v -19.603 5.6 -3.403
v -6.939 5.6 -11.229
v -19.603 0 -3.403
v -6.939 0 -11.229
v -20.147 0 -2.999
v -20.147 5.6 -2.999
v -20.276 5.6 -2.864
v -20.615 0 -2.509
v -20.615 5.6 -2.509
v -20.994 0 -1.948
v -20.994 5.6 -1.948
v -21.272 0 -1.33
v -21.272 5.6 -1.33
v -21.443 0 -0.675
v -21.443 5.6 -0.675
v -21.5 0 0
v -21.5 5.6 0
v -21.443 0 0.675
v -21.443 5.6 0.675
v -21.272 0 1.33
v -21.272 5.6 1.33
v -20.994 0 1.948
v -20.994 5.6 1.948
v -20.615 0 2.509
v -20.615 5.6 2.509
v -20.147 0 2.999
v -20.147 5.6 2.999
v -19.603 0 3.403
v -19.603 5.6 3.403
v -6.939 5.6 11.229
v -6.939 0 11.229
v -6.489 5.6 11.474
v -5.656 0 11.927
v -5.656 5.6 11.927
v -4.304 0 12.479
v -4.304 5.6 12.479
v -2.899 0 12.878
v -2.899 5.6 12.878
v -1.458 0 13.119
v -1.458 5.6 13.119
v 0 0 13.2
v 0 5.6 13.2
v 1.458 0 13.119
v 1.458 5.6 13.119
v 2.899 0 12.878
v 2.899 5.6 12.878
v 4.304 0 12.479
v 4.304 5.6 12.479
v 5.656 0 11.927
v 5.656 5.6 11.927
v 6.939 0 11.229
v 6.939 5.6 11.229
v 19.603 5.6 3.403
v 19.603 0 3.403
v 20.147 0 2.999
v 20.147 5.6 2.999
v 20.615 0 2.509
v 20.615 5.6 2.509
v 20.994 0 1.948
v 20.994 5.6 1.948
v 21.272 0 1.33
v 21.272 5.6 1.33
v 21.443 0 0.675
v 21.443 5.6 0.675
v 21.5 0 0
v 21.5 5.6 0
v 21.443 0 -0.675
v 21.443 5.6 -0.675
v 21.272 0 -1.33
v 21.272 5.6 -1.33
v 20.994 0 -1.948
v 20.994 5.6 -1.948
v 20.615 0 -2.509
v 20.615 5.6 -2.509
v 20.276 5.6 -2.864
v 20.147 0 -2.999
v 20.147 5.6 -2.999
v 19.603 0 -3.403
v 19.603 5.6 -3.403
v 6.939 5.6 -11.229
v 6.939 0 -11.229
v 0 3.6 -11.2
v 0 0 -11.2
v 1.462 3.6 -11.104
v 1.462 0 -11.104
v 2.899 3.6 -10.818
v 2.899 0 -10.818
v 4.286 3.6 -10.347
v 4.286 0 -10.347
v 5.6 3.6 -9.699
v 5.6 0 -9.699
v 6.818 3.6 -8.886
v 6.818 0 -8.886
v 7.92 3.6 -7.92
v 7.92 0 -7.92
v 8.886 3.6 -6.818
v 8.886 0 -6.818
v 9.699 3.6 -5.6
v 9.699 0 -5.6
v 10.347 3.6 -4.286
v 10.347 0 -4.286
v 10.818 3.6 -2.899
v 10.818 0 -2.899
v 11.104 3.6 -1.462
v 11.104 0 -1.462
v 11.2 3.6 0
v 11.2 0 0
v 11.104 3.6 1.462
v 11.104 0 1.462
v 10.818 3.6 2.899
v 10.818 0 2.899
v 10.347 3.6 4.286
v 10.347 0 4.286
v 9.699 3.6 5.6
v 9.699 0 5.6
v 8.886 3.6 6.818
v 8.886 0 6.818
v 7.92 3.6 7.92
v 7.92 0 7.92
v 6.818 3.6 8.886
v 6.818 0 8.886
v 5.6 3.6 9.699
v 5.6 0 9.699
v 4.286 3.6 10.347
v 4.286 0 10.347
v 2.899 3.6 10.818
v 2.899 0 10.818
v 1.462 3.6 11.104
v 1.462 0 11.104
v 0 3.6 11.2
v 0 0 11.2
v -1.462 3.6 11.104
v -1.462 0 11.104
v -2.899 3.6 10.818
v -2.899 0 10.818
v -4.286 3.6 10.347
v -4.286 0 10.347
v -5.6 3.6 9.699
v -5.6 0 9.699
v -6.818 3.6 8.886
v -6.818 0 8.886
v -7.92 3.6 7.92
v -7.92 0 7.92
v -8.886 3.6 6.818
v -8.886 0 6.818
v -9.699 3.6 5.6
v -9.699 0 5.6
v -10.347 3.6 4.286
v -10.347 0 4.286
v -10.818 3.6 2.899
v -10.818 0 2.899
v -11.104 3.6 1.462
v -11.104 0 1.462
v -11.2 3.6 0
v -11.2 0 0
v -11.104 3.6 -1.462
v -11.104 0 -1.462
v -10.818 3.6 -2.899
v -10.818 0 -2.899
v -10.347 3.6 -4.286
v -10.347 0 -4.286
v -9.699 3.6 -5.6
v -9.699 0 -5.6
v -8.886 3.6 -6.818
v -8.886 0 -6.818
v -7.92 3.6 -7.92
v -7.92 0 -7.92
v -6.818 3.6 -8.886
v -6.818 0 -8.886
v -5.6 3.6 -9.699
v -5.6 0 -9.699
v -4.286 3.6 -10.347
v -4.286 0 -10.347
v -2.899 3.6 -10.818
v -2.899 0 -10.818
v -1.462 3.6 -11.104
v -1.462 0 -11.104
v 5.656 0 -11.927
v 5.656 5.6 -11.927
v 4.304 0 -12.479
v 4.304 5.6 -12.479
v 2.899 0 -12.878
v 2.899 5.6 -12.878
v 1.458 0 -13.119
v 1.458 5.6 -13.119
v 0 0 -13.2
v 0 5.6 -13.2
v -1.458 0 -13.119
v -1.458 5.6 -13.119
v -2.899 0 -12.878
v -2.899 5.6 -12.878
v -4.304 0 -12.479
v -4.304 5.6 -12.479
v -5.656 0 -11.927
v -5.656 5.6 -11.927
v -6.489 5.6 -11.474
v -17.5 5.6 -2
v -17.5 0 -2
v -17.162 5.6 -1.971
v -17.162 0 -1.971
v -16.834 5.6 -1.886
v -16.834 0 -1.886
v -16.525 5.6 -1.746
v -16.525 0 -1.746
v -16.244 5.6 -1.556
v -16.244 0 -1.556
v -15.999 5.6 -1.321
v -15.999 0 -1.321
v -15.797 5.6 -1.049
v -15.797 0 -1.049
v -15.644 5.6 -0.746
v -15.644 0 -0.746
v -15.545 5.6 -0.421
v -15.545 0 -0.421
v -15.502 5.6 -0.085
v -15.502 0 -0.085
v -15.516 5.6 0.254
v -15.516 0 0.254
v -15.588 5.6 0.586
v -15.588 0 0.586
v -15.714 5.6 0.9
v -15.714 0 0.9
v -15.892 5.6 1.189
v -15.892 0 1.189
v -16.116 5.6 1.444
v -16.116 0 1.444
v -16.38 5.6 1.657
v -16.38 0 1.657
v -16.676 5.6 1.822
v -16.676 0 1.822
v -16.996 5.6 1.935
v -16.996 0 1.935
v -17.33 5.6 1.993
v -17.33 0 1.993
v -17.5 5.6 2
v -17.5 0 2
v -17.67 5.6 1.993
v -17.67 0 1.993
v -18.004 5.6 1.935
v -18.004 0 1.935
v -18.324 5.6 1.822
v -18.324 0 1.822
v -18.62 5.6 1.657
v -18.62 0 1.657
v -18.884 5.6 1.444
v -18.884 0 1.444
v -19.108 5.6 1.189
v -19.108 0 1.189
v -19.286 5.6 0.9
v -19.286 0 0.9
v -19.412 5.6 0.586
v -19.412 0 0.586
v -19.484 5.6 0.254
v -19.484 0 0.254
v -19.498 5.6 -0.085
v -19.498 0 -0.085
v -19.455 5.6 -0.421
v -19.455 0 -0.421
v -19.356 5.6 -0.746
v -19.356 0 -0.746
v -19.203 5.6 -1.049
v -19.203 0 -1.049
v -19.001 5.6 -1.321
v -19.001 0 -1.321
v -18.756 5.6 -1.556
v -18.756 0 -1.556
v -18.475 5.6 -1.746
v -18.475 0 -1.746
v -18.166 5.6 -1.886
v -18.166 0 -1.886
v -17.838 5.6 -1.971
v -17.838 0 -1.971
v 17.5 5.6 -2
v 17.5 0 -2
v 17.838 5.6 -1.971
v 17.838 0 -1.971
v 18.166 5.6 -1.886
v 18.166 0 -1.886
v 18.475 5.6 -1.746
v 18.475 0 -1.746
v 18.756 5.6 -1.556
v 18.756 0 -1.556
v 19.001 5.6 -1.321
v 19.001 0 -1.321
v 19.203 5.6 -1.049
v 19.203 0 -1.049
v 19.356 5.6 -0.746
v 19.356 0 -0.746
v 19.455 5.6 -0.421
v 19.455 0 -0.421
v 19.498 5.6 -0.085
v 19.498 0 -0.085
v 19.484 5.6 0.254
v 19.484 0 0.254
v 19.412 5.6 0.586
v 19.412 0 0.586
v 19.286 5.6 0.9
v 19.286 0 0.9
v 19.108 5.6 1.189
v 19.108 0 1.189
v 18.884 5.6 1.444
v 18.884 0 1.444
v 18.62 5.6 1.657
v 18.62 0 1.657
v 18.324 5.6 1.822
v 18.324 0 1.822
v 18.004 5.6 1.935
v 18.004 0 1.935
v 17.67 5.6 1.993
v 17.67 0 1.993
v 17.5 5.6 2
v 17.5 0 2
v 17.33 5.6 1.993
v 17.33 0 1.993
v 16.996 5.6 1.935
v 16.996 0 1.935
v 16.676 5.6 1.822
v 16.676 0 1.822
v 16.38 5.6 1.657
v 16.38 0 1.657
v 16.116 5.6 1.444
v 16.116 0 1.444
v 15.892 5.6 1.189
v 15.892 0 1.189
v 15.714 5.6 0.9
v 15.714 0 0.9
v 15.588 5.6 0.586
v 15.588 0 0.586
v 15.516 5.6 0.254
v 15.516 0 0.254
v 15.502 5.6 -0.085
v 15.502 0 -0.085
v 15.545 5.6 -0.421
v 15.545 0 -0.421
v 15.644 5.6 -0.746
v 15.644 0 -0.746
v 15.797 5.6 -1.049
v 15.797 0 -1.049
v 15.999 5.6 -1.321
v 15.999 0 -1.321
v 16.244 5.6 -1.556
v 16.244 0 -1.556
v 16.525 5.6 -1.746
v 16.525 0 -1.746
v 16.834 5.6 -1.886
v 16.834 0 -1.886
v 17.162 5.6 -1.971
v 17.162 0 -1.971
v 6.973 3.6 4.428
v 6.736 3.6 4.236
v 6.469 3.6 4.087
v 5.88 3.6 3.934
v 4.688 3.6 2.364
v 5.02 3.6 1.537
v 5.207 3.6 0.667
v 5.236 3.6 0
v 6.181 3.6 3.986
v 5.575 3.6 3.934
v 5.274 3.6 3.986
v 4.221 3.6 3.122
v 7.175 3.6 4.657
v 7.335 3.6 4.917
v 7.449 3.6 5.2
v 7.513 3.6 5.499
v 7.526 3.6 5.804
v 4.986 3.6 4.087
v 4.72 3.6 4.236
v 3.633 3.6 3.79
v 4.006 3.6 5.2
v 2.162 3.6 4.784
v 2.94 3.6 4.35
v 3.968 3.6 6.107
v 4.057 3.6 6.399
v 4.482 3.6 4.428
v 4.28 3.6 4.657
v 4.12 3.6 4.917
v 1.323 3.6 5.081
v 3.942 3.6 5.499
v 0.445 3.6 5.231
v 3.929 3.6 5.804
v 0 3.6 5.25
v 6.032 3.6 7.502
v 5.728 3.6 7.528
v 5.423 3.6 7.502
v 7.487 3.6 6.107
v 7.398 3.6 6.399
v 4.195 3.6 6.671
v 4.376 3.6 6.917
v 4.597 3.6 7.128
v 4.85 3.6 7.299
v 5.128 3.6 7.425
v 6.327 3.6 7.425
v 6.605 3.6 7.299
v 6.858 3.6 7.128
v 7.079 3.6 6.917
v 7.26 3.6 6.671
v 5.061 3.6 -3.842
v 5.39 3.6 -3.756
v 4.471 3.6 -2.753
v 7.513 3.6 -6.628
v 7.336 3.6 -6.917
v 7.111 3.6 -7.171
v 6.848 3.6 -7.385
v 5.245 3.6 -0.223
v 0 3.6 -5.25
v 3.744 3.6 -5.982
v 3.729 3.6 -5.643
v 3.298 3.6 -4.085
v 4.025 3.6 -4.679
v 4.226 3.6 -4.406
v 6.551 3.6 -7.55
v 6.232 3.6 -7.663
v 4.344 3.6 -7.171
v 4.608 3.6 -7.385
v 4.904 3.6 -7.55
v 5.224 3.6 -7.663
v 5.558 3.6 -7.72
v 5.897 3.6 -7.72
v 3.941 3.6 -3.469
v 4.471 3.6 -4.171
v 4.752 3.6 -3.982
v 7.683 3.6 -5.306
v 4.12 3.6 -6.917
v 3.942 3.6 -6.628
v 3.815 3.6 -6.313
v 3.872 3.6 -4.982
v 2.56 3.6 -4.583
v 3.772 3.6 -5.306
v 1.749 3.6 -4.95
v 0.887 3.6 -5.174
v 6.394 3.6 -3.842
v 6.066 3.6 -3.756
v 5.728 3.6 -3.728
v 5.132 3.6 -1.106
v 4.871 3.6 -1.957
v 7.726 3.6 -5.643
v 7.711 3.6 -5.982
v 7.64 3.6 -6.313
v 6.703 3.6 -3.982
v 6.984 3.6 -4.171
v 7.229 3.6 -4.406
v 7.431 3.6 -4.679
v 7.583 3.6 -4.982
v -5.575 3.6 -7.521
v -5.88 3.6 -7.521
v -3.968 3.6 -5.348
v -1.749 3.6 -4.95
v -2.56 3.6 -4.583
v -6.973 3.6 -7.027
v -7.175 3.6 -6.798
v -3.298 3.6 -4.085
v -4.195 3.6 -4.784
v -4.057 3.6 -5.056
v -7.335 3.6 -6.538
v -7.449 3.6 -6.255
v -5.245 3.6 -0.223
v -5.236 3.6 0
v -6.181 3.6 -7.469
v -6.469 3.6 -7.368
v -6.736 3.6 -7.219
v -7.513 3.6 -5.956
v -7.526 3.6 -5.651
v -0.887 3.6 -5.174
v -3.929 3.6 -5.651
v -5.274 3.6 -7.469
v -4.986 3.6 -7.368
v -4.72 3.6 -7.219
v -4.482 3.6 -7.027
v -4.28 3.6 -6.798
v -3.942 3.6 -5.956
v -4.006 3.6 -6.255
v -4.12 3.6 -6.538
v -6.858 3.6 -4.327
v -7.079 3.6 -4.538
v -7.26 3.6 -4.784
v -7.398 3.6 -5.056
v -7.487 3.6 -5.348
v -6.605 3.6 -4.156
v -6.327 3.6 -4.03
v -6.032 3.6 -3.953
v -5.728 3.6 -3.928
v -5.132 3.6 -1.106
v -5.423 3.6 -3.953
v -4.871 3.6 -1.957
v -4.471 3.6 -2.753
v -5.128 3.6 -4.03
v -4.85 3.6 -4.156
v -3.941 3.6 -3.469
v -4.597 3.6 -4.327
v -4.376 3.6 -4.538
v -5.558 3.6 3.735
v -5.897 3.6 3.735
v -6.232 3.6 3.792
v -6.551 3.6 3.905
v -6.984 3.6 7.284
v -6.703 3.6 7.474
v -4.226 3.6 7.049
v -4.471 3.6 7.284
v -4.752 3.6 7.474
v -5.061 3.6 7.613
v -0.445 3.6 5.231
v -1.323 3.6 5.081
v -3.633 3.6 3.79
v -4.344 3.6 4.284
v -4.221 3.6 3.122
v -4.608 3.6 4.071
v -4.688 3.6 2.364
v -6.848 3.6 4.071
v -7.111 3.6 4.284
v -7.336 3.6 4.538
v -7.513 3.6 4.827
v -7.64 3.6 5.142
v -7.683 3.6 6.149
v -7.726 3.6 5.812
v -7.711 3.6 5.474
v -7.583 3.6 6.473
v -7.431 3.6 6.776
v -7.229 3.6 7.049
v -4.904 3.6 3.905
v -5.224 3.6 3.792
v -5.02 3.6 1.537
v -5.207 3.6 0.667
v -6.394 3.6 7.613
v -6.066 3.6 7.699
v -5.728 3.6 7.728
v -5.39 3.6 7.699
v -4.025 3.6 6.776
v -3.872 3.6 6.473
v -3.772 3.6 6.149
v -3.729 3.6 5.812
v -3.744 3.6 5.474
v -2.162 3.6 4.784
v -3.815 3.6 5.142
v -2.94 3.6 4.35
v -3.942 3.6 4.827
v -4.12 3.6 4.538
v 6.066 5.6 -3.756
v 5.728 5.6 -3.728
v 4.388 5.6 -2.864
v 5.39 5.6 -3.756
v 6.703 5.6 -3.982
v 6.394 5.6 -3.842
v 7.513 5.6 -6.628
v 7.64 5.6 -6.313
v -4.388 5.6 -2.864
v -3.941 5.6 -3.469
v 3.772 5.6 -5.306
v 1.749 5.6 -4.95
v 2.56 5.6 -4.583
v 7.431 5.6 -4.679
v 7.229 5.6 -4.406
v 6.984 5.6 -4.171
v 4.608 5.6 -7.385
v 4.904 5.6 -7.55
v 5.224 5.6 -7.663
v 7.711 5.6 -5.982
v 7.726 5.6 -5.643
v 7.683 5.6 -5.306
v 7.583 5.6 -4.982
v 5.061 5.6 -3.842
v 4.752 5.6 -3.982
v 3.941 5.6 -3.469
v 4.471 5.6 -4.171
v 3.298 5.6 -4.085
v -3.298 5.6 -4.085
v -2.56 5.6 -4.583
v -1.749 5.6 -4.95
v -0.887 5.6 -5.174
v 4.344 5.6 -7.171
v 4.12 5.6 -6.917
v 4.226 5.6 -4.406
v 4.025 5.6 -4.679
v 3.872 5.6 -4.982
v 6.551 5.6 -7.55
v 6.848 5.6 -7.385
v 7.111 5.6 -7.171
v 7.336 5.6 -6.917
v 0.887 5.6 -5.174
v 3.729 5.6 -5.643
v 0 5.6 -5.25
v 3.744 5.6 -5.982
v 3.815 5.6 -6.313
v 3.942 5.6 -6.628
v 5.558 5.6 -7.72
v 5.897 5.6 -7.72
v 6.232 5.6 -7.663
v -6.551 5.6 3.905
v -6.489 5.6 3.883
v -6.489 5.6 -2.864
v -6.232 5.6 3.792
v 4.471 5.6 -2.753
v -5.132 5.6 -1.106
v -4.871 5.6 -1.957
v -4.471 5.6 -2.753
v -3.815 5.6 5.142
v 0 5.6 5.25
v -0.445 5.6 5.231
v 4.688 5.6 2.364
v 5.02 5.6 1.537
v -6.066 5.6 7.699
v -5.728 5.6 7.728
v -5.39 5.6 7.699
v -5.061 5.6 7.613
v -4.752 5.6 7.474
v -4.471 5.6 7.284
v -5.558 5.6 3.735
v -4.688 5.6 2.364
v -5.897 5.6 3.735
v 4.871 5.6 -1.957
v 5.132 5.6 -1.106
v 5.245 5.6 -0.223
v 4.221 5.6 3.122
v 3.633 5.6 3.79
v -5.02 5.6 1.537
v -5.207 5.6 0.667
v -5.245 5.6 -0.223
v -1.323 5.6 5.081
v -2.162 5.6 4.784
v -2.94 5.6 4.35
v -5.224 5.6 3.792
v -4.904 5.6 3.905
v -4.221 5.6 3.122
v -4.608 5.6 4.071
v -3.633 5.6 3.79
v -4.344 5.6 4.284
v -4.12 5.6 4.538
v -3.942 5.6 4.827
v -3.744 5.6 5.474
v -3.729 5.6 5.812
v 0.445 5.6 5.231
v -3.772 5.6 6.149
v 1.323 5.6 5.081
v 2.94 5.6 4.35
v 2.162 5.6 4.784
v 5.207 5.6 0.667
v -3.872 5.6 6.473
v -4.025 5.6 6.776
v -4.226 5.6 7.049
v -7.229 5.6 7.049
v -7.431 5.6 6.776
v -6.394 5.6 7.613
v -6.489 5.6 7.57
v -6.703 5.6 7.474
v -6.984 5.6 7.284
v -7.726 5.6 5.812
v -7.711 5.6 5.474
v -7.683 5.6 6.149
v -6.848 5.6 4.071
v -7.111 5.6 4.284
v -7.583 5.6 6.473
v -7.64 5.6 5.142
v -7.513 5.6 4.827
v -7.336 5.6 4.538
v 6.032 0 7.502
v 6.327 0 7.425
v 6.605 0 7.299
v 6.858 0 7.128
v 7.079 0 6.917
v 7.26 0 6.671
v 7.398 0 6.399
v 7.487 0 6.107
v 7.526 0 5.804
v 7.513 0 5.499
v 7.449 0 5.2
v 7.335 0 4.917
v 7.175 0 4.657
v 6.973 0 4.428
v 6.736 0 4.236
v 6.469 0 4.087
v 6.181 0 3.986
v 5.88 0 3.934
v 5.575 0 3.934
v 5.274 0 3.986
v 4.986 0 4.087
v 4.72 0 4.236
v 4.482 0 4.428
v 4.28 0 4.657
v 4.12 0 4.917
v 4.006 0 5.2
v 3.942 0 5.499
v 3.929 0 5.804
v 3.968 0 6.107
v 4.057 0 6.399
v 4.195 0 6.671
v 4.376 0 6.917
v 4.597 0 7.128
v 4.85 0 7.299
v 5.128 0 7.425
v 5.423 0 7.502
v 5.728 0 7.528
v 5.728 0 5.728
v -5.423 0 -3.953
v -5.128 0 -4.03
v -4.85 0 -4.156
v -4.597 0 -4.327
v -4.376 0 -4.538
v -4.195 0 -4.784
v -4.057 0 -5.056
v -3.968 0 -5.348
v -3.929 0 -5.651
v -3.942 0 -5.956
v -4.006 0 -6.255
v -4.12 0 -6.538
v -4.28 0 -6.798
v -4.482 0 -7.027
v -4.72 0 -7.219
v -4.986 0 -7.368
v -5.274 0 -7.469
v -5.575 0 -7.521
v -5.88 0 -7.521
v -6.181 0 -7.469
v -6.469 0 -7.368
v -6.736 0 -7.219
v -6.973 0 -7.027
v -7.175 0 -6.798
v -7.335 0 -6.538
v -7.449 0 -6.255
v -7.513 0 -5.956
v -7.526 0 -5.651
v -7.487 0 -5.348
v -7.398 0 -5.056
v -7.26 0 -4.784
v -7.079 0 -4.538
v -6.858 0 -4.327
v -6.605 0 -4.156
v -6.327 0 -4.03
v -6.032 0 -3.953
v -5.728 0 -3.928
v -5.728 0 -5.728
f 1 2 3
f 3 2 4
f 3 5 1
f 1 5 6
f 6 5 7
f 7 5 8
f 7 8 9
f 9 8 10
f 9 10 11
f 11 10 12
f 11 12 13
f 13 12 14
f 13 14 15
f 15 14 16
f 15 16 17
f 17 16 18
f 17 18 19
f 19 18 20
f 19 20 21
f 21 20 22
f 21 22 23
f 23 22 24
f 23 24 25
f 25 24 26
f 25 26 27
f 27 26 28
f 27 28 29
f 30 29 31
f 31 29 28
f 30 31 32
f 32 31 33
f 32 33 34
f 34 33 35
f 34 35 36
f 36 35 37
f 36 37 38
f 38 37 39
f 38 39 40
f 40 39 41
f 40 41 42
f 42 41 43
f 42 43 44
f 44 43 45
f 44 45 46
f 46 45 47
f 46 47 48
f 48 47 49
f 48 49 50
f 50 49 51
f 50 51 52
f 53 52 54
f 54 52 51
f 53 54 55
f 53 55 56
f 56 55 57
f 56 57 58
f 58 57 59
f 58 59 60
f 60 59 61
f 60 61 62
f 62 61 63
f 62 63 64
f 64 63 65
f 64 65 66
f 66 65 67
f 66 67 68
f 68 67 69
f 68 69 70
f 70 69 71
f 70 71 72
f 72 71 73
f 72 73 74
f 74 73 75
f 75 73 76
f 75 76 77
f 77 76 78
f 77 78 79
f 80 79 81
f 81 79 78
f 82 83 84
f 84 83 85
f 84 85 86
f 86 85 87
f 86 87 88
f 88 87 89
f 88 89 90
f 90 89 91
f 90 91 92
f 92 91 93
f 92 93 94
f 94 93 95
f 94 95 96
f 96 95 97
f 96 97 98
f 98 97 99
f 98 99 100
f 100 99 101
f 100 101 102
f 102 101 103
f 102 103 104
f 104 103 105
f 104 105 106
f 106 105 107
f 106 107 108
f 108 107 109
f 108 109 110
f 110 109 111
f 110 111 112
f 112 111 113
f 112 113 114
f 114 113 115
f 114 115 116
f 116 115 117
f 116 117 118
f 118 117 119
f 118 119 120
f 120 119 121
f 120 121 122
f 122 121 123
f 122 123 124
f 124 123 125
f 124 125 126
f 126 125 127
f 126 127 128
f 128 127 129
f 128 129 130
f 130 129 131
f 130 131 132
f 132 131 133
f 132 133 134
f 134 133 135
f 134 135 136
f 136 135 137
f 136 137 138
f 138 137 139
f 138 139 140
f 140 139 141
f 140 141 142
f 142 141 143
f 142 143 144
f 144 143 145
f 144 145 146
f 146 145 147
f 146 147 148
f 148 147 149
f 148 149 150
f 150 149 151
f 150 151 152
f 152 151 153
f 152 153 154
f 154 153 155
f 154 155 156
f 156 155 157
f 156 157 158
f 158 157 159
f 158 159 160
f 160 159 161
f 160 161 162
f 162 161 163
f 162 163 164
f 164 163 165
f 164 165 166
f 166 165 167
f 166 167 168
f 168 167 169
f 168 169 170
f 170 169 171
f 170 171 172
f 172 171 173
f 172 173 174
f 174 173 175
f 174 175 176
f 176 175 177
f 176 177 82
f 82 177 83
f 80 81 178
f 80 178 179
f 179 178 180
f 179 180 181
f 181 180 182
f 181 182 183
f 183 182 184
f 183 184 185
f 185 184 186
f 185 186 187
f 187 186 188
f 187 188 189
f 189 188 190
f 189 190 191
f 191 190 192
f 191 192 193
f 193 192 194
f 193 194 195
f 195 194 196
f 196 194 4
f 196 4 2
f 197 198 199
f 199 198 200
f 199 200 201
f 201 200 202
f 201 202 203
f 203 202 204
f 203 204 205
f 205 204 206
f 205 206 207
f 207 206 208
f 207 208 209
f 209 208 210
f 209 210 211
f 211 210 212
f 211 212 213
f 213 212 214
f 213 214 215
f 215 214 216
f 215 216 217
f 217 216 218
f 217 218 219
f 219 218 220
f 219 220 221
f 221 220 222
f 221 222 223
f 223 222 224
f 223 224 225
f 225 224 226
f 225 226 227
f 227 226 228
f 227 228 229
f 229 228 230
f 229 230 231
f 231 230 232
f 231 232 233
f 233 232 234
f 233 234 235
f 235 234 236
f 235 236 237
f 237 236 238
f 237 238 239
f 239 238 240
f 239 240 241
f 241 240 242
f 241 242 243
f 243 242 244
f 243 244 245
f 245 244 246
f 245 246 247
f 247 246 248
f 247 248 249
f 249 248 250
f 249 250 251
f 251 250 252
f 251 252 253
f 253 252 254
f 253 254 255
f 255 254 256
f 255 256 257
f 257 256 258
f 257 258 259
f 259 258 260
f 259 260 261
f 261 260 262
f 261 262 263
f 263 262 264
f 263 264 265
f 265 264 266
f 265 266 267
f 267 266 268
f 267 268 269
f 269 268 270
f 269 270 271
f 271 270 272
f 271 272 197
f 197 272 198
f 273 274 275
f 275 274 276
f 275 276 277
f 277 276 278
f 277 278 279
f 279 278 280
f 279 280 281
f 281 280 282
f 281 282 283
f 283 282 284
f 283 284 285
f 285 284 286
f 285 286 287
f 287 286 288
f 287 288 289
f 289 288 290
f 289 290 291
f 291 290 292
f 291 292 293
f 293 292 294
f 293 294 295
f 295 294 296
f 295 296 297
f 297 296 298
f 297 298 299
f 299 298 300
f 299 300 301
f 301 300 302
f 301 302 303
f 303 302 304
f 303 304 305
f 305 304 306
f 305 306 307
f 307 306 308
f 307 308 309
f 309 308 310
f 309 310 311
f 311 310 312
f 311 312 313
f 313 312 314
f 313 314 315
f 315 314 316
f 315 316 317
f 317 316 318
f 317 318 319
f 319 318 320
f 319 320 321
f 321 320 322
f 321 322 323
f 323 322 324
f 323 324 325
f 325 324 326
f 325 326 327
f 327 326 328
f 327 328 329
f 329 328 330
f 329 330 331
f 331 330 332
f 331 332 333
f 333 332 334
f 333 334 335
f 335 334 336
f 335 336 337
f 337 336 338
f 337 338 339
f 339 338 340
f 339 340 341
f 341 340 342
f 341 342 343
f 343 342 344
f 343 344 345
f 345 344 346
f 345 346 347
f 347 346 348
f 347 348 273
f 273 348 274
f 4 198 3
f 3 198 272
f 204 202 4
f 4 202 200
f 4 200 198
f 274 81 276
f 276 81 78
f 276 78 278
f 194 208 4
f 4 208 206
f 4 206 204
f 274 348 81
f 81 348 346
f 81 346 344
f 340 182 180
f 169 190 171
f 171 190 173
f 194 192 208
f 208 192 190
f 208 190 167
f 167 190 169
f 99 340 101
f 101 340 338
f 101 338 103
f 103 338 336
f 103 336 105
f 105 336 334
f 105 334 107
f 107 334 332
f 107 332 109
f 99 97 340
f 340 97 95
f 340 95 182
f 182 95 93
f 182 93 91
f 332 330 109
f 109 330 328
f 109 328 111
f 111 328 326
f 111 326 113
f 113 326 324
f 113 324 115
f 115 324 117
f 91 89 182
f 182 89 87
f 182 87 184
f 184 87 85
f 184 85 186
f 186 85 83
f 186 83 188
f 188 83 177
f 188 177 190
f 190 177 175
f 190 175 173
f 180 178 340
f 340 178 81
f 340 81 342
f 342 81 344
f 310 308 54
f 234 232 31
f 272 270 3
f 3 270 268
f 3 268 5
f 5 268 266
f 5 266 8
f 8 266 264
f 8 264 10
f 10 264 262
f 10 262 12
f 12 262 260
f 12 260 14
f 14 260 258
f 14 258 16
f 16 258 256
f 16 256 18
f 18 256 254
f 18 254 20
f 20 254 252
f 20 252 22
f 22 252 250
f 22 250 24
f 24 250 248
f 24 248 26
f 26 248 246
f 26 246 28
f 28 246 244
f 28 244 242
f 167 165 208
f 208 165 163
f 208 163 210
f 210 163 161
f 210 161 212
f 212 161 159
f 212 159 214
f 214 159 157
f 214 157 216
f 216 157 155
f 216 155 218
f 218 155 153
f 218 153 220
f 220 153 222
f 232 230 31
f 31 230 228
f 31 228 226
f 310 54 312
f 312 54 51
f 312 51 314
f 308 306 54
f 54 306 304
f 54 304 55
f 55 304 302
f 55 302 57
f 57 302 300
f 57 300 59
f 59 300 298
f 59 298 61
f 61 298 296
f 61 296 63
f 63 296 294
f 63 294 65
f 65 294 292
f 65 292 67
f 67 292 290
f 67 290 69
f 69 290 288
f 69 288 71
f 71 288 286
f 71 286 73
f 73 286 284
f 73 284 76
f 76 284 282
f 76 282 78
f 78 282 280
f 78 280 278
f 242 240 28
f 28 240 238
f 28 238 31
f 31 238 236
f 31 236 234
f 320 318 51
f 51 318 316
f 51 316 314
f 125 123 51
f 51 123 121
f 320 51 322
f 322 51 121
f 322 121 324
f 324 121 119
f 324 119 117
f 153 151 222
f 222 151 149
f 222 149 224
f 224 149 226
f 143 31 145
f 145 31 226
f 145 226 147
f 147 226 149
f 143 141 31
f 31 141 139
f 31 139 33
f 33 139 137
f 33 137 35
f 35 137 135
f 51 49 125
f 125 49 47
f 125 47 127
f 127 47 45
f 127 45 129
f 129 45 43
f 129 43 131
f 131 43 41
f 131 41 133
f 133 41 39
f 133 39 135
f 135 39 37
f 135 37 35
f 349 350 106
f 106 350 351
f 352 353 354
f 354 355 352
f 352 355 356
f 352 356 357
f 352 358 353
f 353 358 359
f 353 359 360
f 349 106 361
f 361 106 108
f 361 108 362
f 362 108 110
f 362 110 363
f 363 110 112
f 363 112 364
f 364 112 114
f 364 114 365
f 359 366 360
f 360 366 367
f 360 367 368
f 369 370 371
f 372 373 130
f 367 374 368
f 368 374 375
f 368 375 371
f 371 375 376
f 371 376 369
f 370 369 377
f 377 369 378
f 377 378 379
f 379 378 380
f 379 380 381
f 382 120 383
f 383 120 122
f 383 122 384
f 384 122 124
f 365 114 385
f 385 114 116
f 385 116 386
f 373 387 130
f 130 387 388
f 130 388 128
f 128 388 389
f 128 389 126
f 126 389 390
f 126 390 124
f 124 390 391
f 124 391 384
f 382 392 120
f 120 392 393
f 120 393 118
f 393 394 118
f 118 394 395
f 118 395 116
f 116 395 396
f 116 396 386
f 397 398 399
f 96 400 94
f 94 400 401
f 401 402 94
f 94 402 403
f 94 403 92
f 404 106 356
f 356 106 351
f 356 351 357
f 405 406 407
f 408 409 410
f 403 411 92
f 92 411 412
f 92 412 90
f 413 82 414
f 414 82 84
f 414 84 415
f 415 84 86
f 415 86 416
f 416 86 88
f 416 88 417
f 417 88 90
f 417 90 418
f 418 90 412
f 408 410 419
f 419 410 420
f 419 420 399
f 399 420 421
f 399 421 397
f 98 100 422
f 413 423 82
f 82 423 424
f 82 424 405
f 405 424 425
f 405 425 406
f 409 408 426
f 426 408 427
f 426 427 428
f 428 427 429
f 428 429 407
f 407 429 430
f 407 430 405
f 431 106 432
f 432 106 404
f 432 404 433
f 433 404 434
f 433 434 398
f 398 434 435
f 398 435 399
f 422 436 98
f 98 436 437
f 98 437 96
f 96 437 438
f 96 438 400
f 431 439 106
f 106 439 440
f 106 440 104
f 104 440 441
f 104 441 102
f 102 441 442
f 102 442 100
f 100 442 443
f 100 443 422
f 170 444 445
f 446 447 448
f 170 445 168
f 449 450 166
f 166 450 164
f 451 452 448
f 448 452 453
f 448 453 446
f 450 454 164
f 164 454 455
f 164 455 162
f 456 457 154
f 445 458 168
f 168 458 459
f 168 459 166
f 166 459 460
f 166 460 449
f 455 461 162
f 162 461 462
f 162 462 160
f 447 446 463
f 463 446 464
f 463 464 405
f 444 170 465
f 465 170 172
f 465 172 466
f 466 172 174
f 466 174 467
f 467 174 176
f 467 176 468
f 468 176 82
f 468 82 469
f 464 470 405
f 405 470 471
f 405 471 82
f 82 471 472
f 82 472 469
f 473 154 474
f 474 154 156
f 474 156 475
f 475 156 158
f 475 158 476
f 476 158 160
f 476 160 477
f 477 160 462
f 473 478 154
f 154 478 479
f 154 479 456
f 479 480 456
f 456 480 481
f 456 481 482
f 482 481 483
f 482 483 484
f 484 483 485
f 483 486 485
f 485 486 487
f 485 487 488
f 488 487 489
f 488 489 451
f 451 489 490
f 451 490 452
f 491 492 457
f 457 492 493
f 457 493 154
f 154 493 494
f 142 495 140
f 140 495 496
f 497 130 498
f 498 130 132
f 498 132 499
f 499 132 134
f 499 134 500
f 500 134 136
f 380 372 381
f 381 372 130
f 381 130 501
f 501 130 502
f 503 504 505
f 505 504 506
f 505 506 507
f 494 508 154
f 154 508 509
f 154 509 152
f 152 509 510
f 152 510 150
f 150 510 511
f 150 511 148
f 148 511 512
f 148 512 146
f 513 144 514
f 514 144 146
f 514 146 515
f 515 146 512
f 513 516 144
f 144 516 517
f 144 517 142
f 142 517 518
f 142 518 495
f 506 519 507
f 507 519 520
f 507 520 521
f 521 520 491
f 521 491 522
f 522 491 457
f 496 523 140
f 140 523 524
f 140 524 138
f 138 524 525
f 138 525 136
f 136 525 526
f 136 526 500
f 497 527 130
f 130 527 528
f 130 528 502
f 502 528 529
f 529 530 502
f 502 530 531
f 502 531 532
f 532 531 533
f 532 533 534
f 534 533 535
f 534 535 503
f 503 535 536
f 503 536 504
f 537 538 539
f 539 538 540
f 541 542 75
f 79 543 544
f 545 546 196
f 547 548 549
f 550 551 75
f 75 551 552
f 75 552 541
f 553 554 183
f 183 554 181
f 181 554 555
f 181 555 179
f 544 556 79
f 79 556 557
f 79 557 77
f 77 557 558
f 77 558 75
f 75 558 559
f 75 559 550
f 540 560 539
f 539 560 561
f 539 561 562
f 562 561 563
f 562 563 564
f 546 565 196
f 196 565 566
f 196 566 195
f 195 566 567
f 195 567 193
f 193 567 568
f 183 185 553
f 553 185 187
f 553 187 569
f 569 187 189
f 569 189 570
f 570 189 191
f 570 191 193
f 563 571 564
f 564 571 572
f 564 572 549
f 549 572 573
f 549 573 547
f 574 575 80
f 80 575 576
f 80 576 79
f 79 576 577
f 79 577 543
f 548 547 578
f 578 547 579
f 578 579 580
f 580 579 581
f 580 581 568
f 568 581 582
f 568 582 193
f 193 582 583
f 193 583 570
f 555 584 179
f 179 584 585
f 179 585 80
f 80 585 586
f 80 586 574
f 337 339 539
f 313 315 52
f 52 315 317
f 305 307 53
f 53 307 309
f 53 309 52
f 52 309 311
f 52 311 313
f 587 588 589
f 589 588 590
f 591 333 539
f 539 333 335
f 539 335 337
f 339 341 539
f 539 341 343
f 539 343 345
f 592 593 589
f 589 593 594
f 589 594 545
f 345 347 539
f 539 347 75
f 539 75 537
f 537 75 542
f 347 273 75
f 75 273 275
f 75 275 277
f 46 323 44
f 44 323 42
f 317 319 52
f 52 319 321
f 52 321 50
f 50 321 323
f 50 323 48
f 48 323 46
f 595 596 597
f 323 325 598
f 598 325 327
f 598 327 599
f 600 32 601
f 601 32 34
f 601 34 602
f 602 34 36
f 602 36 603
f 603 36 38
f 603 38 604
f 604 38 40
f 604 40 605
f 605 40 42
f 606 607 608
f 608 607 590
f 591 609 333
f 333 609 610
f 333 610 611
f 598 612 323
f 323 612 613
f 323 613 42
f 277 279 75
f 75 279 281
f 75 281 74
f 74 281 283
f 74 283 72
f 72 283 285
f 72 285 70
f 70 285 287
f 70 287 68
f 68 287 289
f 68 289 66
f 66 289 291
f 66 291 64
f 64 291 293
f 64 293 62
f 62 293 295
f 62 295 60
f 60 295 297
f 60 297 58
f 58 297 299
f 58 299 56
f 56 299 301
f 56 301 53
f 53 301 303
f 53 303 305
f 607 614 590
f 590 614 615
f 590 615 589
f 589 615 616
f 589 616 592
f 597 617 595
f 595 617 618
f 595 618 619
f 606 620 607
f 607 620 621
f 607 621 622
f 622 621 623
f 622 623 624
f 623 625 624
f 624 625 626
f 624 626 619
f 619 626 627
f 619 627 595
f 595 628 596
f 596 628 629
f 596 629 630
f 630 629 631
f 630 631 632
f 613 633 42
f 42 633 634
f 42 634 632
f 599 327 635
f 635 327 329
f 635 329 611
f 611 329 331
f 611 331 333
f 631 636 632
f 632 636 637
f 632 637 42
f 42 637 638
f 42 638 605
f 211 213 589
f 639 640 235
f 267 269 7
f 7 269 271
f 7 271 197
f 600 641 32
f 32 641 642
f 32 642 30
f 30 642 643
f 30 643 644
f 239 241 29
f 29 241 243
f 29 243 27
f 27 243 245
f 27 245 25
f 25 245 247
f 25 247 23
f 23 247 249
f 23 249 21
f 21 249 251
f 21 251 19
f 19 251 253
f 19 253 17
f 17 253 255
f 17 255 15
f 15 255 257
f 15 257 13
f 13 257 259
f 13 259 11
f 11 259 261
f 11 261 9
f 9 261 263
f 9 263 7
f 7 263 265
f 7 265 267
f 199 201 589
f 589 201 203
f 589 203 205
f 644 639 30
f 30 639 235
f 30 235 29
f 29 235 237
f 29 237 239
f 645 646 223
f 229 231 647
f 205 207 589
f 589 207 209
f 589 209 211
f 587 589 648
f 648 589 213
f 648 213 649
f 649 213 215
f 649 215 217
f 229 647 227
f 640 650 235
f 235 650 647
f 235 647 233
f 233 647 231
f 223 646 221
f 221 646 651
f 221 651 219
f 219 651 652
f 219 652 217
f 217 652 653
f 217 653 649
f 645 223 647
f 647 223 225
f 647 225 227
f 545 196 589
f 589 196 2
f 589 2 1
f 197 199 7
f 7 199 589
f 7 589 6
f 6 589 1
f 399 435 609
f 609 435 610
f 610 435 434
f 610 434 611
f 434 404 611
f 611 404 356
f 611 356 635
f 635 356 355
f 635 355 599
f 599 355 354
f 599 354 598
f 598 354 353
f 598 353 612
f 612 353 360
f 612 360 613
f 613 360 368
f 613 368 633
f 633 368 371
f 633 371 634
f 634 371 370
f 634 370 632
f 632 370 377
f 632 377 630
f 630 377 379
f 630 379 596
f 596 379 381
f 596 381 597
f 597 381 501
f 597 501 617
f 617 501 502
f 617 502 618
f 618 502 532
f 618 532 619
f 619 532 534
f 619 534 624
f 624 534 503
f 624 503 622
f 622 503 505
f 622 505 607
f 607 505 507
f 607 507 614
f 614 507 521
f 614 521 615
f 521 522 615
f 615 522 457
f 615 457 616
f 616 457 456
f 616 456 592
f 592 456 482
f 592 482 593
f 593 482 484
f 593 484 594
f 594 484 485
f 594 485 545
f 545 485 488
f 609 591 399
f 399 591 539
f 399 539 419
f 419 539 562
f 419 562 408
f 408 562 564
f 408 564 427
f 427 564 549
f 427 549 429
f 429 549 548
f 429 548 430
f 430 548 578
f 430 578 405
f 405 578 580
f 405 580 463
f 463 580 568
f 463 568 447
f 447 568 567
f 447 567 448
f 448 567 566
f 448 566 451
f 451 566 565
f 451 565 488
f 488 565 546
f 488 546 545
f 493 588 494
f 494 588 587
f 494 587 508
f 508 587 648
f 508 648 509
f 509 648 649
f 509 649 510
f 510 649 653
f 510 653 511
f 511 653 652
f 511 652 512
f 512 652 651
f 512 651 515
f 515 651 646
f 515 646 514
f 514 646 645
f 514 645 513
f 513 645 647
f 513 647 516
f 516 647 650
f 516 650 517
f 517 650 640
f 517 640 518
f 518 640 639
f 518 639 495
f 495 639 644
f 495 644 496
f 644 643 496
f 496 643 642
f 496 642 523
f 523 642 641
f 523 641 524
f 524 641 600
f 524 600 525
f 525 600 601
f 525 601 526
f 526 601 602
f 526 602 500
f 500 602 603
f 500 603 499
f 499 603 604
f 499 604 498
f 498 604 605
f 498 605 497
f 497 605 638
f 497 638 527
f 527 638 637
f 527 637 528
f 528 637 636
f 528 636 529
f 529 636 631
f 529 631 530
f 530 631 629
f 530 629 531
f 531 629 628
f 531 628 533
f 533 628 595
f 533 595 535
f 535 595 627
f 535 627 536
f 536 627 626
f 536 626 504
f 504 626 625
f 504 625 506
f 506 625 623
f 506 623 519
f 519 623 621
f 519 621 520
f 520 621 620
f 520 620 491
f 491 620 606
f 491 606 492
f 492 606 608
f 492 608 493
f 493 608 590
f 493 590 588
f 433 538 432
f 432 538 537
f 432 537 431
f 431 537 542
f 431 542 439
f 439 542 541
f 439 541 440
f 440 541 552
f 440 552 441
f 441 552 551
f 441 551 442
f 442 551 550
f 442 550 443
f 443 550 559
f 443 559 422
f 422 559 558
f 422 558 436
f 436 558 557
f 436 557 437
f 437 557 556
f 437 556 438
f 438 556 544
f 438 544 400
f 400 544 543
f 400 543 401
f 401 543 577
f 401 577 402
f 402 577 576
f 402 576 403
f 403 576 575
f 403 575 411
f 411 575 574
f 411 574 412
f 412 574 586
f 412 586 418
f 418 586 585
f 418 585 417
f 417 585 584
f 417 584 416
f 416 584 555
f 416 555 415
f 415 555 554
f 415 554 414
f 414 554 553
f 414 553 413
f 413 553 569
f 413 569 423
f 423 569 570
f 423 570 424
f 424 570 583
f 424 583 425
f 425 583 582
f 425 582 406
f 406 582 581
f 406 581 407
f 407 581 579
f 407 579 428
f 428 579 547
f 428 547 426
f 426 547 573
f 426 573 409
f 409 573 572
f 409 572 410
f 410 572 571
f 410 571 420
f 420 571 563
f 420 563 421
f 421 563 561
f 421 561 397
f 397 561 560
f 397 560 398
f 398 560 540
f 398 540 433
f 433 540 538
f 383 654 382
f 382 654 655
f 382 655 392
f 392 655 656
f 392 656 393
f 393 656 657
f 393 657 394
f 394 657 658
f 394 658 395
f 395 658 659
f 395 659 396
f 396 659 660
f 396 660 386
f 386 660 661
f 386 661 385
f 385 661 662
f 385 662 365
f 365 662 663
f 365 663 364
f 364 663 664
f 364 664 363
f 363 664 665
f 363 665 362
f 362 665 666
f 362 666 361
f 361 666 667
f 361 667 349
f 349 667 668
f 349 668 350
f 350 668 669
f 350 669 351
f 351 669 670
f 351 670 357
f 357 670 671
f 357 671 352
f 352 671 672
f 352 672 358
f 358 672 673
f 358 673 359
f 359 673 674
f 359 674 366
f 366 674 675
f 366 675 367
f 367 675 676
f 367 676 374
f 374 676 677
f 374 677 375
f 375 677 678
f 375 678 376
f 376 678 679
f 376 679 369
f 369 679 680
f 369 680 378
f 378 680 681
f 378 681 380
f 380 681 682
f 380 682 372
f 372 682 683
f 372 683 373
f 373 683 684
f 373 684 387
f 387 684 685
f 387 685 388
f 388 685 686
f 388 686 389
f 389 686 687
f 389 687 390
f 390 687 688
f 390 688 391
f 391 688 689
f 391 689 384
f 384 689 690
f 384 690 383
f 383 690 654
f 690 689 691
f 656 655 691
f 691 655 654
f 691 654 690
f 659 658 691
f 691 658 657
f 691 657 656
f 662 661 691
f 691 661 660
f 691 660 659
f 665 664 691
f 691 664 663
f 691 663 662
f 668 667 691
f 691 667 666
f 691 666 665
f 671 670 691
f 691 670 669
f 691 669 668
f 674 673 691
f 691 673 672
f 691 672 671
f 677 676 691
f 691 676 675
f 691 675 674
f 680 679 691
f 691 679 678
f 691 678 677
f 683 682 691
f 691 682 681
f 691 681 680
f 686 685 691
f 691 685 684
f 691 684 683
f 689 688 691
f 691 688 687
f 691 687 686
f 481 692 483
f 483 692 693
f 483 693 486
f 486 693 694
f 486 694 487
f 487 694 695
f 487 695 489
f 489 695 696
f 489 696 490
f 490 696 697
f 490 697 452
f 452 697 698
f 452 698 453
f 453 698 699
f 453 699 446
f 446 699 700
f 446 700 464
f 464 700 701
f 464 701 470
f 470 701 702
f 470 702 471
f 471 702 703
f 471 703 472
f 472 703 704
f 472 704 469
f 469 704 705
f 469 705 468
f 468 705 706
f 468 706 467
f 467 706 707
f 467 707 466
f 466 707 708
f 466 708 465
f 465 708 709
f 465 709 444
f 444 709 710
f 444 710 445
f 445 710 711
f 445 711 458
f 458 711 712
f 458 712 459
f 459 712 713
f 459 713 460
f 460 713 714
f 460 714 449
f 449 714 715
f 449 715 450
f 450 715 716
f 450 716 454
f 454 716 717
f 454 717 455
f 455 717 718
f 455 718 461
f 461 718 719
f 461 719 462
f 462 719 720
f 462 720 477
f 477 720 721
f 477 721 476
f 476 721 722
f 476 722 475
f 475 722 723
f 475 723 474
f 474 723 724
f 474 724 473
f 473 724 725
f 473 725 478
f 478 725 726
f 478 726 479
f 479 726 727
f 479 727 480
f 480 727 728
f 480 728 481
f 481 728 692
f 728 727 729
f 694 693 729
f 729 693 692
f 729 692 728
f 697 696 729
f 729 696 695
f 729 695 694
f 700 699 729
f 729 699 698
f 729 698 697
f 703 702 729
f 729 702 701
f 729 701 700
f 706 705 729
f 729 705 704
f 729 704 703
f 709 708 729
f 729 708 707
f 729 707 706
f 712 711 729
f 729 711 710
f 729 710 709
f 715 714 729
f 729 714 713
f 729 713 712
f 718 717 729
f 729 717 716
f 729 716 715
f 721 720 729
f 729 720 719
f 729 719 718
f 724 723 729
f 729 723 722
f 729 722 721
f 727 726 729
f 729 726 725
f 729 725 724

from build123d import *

# Parameters (mm, degrees)
SKETCH1_R           = 2
SKETCH1_R_2         = 13.2
SKETCH1_R_3         = 11.2
BOSS_EXTRUDE1_DEPTH = 3.6
SKETCH2_R           = 2
SKETCH2_R_2         = 5.25
BOSS_EXTRUDE2_DEPTH = 2
SKETCH3_R           = 2
CUT_EXTRUDE1_DEPTH  = 2
SKETCH4_R           = 1.8
BOSS_EXTRUDE3_DEPTH = 3.6


with BuildPart() as part:
    # Sketch1 → Boss-Extrude1 (new body)
    # profile 1 of 3: a face of its own
    with BuildSketch(Plane(origin=(0, 0, 0), x_dir=(1, 0, 0), z_dir=(0, 1, 0))):
        with BuildLine():
            ThreePointArc((-6.939428571, -11.228727938), (-13.2, 0), (-6.939428571, 11.228727938))
            Line((-6.939428571, 11.228727938), (-19.602857143, 3.40264483))
            ThreePointArc((-19.602857143, 3.40264483), (-21.5, 0), (-19.602857143, -3.40264483))
            Line((-19.602857143, -3.40264483), (-6.939428571, -11.228727938))
        make_face()
        with Locations(Location((-17.5, 0, 0), (0, 0, 270))):
            Circle(SKETCH1_R, mode=Mode.SUBTRACT)
    # profile 2 of 3: a face of its own
    with BuildSketch(Plane(origin=(0, 0, 0), x_dir=(1, 0, 0), z_dir=(0, 1, 0))):
        Circle(SKETCH1_R_2)
        with Locations(Location((0, 0, 0), (0, 0, 270))):
            Circle(SKETCH1_R_3, mode=Mode.SUBTRACT)
    # profile 3 of 3: a face of its own
    with BuildSketch(Plane(origin=(0, 0, 0), x_dir=(1, 0, 0), z_dir=(0, 1, 0))):
        with BuildLine():
            Line((19.602857143, 3.40264483), (6.939428571, 11.228727938))
            ThreePointArc((6.939428571, 11.228727938), (11.529103546, 6.428045693), (13.2, 0))
            ThreePointArc((13.2, 0), (11.529103546, -6.428045693), (6.939428571, -11.228727938))
            Line((6.939428571, -11.228727938), (19.602857143, -3.40264483))
            ThreePointArc((19.602857143, -3.40264483), (21.5, 0), (19.602857143, 3.40264483))
        make_face()
        with Locations(Location((17.5, 0, 0), (0, 0, 270))):
            Circle(SKETCH1_R, mode=Mode.SUBTRACT)
    extrude(amount=BOSS_EXTRUDE1_DEPTH)

    # Sketch2 → Boss-Extrude2 (add)
    with BuildSketch(Plane(origin=(0, 3.6, 0), x_dir=(1, 0, 0), z_dir=(0, 1, 0))):
        with BuildLine():
            Line((-6.939428571, 11.228727938), (-19.602857143, 3.40264483))
            ThreePointArc((-19.602857143, 3.40264483), (-21.5, 0), (-19.602857143, -3.40264483))
            Line((-19.602857143, -3.40264483), (-6.939428571, -11.228727938))
            ThreePointArc((-6.939428571, -11.228727938), (0, -13.2), (6.939428571, -11.228727938))
            Line((6.939428571, -11.228727938), (19.602857143, -3.40264483))
            ThreePointArc((19.602857143, -3.40264483), (21.5, 0), (19.602857143, 3.40264483))
            Line((19.602857143, 3.40264483), (6.939428571, 11.228727938))
            ThreePointArc((6.939428571, 11.228727938), (0, 13.2), (-6.939428571, 11.228727938))
        make_face()
        with Locations(Location((17.5, 0, 0), (0, 0, 270))):
            Circle(SKETCH2_R, mode=Mode.SUBTRACT)
        with Locations(Location((-17.5, 0, 0), (0, 0, 270))):
            Circle(SKETCH2_R, mode=Mode.SUBTRACT)
        with Locations(Location((0, 0, 0), (0, 0, 270))):
            Circle(SKETCH2_R_2, mode=Mode.SUBTRACT)
    extrude(amount=BOSS_EXTRUDE2_DEPTH)

    # Sketch3 → Cut-Extrude1 (cut)
    with BuildSketch(Plane(origin=(0, 5.6, 0), x_dir=(1, 0, 0), z_dir=(0, 1, 0))):
        with Locations(Location((5.727564928, 5.727564928, 0), (0, 0, 270))):
            Circle(SKETCH3_R)
        with Locations(Location((-5.727564928, -5.727564928, 0), (0, 0, 270))):
            Circle(SKETCH3_R)
    extrude(amount=-CUT_EXTRUDE1_DEPTH, mode=Mode.SUBTRACT)

    # Sketch4 → Boss-Extrude3 (add)
    with BuildSketch(Plane.XZ.offset(-3.6)):
        with Locations(Location((5.727564928, 5.727564928, 0), (0, 0, 90))):
            Circle(SKETCH4_R)
        with Locations(Location((-5.727564928, -5.727564928, 0), (0, 0, 90))):
            Circle(SKETCH4_R)
    extrude(amount=BOSS_EXTRUDE3_DEPTH)


solid = part.part
